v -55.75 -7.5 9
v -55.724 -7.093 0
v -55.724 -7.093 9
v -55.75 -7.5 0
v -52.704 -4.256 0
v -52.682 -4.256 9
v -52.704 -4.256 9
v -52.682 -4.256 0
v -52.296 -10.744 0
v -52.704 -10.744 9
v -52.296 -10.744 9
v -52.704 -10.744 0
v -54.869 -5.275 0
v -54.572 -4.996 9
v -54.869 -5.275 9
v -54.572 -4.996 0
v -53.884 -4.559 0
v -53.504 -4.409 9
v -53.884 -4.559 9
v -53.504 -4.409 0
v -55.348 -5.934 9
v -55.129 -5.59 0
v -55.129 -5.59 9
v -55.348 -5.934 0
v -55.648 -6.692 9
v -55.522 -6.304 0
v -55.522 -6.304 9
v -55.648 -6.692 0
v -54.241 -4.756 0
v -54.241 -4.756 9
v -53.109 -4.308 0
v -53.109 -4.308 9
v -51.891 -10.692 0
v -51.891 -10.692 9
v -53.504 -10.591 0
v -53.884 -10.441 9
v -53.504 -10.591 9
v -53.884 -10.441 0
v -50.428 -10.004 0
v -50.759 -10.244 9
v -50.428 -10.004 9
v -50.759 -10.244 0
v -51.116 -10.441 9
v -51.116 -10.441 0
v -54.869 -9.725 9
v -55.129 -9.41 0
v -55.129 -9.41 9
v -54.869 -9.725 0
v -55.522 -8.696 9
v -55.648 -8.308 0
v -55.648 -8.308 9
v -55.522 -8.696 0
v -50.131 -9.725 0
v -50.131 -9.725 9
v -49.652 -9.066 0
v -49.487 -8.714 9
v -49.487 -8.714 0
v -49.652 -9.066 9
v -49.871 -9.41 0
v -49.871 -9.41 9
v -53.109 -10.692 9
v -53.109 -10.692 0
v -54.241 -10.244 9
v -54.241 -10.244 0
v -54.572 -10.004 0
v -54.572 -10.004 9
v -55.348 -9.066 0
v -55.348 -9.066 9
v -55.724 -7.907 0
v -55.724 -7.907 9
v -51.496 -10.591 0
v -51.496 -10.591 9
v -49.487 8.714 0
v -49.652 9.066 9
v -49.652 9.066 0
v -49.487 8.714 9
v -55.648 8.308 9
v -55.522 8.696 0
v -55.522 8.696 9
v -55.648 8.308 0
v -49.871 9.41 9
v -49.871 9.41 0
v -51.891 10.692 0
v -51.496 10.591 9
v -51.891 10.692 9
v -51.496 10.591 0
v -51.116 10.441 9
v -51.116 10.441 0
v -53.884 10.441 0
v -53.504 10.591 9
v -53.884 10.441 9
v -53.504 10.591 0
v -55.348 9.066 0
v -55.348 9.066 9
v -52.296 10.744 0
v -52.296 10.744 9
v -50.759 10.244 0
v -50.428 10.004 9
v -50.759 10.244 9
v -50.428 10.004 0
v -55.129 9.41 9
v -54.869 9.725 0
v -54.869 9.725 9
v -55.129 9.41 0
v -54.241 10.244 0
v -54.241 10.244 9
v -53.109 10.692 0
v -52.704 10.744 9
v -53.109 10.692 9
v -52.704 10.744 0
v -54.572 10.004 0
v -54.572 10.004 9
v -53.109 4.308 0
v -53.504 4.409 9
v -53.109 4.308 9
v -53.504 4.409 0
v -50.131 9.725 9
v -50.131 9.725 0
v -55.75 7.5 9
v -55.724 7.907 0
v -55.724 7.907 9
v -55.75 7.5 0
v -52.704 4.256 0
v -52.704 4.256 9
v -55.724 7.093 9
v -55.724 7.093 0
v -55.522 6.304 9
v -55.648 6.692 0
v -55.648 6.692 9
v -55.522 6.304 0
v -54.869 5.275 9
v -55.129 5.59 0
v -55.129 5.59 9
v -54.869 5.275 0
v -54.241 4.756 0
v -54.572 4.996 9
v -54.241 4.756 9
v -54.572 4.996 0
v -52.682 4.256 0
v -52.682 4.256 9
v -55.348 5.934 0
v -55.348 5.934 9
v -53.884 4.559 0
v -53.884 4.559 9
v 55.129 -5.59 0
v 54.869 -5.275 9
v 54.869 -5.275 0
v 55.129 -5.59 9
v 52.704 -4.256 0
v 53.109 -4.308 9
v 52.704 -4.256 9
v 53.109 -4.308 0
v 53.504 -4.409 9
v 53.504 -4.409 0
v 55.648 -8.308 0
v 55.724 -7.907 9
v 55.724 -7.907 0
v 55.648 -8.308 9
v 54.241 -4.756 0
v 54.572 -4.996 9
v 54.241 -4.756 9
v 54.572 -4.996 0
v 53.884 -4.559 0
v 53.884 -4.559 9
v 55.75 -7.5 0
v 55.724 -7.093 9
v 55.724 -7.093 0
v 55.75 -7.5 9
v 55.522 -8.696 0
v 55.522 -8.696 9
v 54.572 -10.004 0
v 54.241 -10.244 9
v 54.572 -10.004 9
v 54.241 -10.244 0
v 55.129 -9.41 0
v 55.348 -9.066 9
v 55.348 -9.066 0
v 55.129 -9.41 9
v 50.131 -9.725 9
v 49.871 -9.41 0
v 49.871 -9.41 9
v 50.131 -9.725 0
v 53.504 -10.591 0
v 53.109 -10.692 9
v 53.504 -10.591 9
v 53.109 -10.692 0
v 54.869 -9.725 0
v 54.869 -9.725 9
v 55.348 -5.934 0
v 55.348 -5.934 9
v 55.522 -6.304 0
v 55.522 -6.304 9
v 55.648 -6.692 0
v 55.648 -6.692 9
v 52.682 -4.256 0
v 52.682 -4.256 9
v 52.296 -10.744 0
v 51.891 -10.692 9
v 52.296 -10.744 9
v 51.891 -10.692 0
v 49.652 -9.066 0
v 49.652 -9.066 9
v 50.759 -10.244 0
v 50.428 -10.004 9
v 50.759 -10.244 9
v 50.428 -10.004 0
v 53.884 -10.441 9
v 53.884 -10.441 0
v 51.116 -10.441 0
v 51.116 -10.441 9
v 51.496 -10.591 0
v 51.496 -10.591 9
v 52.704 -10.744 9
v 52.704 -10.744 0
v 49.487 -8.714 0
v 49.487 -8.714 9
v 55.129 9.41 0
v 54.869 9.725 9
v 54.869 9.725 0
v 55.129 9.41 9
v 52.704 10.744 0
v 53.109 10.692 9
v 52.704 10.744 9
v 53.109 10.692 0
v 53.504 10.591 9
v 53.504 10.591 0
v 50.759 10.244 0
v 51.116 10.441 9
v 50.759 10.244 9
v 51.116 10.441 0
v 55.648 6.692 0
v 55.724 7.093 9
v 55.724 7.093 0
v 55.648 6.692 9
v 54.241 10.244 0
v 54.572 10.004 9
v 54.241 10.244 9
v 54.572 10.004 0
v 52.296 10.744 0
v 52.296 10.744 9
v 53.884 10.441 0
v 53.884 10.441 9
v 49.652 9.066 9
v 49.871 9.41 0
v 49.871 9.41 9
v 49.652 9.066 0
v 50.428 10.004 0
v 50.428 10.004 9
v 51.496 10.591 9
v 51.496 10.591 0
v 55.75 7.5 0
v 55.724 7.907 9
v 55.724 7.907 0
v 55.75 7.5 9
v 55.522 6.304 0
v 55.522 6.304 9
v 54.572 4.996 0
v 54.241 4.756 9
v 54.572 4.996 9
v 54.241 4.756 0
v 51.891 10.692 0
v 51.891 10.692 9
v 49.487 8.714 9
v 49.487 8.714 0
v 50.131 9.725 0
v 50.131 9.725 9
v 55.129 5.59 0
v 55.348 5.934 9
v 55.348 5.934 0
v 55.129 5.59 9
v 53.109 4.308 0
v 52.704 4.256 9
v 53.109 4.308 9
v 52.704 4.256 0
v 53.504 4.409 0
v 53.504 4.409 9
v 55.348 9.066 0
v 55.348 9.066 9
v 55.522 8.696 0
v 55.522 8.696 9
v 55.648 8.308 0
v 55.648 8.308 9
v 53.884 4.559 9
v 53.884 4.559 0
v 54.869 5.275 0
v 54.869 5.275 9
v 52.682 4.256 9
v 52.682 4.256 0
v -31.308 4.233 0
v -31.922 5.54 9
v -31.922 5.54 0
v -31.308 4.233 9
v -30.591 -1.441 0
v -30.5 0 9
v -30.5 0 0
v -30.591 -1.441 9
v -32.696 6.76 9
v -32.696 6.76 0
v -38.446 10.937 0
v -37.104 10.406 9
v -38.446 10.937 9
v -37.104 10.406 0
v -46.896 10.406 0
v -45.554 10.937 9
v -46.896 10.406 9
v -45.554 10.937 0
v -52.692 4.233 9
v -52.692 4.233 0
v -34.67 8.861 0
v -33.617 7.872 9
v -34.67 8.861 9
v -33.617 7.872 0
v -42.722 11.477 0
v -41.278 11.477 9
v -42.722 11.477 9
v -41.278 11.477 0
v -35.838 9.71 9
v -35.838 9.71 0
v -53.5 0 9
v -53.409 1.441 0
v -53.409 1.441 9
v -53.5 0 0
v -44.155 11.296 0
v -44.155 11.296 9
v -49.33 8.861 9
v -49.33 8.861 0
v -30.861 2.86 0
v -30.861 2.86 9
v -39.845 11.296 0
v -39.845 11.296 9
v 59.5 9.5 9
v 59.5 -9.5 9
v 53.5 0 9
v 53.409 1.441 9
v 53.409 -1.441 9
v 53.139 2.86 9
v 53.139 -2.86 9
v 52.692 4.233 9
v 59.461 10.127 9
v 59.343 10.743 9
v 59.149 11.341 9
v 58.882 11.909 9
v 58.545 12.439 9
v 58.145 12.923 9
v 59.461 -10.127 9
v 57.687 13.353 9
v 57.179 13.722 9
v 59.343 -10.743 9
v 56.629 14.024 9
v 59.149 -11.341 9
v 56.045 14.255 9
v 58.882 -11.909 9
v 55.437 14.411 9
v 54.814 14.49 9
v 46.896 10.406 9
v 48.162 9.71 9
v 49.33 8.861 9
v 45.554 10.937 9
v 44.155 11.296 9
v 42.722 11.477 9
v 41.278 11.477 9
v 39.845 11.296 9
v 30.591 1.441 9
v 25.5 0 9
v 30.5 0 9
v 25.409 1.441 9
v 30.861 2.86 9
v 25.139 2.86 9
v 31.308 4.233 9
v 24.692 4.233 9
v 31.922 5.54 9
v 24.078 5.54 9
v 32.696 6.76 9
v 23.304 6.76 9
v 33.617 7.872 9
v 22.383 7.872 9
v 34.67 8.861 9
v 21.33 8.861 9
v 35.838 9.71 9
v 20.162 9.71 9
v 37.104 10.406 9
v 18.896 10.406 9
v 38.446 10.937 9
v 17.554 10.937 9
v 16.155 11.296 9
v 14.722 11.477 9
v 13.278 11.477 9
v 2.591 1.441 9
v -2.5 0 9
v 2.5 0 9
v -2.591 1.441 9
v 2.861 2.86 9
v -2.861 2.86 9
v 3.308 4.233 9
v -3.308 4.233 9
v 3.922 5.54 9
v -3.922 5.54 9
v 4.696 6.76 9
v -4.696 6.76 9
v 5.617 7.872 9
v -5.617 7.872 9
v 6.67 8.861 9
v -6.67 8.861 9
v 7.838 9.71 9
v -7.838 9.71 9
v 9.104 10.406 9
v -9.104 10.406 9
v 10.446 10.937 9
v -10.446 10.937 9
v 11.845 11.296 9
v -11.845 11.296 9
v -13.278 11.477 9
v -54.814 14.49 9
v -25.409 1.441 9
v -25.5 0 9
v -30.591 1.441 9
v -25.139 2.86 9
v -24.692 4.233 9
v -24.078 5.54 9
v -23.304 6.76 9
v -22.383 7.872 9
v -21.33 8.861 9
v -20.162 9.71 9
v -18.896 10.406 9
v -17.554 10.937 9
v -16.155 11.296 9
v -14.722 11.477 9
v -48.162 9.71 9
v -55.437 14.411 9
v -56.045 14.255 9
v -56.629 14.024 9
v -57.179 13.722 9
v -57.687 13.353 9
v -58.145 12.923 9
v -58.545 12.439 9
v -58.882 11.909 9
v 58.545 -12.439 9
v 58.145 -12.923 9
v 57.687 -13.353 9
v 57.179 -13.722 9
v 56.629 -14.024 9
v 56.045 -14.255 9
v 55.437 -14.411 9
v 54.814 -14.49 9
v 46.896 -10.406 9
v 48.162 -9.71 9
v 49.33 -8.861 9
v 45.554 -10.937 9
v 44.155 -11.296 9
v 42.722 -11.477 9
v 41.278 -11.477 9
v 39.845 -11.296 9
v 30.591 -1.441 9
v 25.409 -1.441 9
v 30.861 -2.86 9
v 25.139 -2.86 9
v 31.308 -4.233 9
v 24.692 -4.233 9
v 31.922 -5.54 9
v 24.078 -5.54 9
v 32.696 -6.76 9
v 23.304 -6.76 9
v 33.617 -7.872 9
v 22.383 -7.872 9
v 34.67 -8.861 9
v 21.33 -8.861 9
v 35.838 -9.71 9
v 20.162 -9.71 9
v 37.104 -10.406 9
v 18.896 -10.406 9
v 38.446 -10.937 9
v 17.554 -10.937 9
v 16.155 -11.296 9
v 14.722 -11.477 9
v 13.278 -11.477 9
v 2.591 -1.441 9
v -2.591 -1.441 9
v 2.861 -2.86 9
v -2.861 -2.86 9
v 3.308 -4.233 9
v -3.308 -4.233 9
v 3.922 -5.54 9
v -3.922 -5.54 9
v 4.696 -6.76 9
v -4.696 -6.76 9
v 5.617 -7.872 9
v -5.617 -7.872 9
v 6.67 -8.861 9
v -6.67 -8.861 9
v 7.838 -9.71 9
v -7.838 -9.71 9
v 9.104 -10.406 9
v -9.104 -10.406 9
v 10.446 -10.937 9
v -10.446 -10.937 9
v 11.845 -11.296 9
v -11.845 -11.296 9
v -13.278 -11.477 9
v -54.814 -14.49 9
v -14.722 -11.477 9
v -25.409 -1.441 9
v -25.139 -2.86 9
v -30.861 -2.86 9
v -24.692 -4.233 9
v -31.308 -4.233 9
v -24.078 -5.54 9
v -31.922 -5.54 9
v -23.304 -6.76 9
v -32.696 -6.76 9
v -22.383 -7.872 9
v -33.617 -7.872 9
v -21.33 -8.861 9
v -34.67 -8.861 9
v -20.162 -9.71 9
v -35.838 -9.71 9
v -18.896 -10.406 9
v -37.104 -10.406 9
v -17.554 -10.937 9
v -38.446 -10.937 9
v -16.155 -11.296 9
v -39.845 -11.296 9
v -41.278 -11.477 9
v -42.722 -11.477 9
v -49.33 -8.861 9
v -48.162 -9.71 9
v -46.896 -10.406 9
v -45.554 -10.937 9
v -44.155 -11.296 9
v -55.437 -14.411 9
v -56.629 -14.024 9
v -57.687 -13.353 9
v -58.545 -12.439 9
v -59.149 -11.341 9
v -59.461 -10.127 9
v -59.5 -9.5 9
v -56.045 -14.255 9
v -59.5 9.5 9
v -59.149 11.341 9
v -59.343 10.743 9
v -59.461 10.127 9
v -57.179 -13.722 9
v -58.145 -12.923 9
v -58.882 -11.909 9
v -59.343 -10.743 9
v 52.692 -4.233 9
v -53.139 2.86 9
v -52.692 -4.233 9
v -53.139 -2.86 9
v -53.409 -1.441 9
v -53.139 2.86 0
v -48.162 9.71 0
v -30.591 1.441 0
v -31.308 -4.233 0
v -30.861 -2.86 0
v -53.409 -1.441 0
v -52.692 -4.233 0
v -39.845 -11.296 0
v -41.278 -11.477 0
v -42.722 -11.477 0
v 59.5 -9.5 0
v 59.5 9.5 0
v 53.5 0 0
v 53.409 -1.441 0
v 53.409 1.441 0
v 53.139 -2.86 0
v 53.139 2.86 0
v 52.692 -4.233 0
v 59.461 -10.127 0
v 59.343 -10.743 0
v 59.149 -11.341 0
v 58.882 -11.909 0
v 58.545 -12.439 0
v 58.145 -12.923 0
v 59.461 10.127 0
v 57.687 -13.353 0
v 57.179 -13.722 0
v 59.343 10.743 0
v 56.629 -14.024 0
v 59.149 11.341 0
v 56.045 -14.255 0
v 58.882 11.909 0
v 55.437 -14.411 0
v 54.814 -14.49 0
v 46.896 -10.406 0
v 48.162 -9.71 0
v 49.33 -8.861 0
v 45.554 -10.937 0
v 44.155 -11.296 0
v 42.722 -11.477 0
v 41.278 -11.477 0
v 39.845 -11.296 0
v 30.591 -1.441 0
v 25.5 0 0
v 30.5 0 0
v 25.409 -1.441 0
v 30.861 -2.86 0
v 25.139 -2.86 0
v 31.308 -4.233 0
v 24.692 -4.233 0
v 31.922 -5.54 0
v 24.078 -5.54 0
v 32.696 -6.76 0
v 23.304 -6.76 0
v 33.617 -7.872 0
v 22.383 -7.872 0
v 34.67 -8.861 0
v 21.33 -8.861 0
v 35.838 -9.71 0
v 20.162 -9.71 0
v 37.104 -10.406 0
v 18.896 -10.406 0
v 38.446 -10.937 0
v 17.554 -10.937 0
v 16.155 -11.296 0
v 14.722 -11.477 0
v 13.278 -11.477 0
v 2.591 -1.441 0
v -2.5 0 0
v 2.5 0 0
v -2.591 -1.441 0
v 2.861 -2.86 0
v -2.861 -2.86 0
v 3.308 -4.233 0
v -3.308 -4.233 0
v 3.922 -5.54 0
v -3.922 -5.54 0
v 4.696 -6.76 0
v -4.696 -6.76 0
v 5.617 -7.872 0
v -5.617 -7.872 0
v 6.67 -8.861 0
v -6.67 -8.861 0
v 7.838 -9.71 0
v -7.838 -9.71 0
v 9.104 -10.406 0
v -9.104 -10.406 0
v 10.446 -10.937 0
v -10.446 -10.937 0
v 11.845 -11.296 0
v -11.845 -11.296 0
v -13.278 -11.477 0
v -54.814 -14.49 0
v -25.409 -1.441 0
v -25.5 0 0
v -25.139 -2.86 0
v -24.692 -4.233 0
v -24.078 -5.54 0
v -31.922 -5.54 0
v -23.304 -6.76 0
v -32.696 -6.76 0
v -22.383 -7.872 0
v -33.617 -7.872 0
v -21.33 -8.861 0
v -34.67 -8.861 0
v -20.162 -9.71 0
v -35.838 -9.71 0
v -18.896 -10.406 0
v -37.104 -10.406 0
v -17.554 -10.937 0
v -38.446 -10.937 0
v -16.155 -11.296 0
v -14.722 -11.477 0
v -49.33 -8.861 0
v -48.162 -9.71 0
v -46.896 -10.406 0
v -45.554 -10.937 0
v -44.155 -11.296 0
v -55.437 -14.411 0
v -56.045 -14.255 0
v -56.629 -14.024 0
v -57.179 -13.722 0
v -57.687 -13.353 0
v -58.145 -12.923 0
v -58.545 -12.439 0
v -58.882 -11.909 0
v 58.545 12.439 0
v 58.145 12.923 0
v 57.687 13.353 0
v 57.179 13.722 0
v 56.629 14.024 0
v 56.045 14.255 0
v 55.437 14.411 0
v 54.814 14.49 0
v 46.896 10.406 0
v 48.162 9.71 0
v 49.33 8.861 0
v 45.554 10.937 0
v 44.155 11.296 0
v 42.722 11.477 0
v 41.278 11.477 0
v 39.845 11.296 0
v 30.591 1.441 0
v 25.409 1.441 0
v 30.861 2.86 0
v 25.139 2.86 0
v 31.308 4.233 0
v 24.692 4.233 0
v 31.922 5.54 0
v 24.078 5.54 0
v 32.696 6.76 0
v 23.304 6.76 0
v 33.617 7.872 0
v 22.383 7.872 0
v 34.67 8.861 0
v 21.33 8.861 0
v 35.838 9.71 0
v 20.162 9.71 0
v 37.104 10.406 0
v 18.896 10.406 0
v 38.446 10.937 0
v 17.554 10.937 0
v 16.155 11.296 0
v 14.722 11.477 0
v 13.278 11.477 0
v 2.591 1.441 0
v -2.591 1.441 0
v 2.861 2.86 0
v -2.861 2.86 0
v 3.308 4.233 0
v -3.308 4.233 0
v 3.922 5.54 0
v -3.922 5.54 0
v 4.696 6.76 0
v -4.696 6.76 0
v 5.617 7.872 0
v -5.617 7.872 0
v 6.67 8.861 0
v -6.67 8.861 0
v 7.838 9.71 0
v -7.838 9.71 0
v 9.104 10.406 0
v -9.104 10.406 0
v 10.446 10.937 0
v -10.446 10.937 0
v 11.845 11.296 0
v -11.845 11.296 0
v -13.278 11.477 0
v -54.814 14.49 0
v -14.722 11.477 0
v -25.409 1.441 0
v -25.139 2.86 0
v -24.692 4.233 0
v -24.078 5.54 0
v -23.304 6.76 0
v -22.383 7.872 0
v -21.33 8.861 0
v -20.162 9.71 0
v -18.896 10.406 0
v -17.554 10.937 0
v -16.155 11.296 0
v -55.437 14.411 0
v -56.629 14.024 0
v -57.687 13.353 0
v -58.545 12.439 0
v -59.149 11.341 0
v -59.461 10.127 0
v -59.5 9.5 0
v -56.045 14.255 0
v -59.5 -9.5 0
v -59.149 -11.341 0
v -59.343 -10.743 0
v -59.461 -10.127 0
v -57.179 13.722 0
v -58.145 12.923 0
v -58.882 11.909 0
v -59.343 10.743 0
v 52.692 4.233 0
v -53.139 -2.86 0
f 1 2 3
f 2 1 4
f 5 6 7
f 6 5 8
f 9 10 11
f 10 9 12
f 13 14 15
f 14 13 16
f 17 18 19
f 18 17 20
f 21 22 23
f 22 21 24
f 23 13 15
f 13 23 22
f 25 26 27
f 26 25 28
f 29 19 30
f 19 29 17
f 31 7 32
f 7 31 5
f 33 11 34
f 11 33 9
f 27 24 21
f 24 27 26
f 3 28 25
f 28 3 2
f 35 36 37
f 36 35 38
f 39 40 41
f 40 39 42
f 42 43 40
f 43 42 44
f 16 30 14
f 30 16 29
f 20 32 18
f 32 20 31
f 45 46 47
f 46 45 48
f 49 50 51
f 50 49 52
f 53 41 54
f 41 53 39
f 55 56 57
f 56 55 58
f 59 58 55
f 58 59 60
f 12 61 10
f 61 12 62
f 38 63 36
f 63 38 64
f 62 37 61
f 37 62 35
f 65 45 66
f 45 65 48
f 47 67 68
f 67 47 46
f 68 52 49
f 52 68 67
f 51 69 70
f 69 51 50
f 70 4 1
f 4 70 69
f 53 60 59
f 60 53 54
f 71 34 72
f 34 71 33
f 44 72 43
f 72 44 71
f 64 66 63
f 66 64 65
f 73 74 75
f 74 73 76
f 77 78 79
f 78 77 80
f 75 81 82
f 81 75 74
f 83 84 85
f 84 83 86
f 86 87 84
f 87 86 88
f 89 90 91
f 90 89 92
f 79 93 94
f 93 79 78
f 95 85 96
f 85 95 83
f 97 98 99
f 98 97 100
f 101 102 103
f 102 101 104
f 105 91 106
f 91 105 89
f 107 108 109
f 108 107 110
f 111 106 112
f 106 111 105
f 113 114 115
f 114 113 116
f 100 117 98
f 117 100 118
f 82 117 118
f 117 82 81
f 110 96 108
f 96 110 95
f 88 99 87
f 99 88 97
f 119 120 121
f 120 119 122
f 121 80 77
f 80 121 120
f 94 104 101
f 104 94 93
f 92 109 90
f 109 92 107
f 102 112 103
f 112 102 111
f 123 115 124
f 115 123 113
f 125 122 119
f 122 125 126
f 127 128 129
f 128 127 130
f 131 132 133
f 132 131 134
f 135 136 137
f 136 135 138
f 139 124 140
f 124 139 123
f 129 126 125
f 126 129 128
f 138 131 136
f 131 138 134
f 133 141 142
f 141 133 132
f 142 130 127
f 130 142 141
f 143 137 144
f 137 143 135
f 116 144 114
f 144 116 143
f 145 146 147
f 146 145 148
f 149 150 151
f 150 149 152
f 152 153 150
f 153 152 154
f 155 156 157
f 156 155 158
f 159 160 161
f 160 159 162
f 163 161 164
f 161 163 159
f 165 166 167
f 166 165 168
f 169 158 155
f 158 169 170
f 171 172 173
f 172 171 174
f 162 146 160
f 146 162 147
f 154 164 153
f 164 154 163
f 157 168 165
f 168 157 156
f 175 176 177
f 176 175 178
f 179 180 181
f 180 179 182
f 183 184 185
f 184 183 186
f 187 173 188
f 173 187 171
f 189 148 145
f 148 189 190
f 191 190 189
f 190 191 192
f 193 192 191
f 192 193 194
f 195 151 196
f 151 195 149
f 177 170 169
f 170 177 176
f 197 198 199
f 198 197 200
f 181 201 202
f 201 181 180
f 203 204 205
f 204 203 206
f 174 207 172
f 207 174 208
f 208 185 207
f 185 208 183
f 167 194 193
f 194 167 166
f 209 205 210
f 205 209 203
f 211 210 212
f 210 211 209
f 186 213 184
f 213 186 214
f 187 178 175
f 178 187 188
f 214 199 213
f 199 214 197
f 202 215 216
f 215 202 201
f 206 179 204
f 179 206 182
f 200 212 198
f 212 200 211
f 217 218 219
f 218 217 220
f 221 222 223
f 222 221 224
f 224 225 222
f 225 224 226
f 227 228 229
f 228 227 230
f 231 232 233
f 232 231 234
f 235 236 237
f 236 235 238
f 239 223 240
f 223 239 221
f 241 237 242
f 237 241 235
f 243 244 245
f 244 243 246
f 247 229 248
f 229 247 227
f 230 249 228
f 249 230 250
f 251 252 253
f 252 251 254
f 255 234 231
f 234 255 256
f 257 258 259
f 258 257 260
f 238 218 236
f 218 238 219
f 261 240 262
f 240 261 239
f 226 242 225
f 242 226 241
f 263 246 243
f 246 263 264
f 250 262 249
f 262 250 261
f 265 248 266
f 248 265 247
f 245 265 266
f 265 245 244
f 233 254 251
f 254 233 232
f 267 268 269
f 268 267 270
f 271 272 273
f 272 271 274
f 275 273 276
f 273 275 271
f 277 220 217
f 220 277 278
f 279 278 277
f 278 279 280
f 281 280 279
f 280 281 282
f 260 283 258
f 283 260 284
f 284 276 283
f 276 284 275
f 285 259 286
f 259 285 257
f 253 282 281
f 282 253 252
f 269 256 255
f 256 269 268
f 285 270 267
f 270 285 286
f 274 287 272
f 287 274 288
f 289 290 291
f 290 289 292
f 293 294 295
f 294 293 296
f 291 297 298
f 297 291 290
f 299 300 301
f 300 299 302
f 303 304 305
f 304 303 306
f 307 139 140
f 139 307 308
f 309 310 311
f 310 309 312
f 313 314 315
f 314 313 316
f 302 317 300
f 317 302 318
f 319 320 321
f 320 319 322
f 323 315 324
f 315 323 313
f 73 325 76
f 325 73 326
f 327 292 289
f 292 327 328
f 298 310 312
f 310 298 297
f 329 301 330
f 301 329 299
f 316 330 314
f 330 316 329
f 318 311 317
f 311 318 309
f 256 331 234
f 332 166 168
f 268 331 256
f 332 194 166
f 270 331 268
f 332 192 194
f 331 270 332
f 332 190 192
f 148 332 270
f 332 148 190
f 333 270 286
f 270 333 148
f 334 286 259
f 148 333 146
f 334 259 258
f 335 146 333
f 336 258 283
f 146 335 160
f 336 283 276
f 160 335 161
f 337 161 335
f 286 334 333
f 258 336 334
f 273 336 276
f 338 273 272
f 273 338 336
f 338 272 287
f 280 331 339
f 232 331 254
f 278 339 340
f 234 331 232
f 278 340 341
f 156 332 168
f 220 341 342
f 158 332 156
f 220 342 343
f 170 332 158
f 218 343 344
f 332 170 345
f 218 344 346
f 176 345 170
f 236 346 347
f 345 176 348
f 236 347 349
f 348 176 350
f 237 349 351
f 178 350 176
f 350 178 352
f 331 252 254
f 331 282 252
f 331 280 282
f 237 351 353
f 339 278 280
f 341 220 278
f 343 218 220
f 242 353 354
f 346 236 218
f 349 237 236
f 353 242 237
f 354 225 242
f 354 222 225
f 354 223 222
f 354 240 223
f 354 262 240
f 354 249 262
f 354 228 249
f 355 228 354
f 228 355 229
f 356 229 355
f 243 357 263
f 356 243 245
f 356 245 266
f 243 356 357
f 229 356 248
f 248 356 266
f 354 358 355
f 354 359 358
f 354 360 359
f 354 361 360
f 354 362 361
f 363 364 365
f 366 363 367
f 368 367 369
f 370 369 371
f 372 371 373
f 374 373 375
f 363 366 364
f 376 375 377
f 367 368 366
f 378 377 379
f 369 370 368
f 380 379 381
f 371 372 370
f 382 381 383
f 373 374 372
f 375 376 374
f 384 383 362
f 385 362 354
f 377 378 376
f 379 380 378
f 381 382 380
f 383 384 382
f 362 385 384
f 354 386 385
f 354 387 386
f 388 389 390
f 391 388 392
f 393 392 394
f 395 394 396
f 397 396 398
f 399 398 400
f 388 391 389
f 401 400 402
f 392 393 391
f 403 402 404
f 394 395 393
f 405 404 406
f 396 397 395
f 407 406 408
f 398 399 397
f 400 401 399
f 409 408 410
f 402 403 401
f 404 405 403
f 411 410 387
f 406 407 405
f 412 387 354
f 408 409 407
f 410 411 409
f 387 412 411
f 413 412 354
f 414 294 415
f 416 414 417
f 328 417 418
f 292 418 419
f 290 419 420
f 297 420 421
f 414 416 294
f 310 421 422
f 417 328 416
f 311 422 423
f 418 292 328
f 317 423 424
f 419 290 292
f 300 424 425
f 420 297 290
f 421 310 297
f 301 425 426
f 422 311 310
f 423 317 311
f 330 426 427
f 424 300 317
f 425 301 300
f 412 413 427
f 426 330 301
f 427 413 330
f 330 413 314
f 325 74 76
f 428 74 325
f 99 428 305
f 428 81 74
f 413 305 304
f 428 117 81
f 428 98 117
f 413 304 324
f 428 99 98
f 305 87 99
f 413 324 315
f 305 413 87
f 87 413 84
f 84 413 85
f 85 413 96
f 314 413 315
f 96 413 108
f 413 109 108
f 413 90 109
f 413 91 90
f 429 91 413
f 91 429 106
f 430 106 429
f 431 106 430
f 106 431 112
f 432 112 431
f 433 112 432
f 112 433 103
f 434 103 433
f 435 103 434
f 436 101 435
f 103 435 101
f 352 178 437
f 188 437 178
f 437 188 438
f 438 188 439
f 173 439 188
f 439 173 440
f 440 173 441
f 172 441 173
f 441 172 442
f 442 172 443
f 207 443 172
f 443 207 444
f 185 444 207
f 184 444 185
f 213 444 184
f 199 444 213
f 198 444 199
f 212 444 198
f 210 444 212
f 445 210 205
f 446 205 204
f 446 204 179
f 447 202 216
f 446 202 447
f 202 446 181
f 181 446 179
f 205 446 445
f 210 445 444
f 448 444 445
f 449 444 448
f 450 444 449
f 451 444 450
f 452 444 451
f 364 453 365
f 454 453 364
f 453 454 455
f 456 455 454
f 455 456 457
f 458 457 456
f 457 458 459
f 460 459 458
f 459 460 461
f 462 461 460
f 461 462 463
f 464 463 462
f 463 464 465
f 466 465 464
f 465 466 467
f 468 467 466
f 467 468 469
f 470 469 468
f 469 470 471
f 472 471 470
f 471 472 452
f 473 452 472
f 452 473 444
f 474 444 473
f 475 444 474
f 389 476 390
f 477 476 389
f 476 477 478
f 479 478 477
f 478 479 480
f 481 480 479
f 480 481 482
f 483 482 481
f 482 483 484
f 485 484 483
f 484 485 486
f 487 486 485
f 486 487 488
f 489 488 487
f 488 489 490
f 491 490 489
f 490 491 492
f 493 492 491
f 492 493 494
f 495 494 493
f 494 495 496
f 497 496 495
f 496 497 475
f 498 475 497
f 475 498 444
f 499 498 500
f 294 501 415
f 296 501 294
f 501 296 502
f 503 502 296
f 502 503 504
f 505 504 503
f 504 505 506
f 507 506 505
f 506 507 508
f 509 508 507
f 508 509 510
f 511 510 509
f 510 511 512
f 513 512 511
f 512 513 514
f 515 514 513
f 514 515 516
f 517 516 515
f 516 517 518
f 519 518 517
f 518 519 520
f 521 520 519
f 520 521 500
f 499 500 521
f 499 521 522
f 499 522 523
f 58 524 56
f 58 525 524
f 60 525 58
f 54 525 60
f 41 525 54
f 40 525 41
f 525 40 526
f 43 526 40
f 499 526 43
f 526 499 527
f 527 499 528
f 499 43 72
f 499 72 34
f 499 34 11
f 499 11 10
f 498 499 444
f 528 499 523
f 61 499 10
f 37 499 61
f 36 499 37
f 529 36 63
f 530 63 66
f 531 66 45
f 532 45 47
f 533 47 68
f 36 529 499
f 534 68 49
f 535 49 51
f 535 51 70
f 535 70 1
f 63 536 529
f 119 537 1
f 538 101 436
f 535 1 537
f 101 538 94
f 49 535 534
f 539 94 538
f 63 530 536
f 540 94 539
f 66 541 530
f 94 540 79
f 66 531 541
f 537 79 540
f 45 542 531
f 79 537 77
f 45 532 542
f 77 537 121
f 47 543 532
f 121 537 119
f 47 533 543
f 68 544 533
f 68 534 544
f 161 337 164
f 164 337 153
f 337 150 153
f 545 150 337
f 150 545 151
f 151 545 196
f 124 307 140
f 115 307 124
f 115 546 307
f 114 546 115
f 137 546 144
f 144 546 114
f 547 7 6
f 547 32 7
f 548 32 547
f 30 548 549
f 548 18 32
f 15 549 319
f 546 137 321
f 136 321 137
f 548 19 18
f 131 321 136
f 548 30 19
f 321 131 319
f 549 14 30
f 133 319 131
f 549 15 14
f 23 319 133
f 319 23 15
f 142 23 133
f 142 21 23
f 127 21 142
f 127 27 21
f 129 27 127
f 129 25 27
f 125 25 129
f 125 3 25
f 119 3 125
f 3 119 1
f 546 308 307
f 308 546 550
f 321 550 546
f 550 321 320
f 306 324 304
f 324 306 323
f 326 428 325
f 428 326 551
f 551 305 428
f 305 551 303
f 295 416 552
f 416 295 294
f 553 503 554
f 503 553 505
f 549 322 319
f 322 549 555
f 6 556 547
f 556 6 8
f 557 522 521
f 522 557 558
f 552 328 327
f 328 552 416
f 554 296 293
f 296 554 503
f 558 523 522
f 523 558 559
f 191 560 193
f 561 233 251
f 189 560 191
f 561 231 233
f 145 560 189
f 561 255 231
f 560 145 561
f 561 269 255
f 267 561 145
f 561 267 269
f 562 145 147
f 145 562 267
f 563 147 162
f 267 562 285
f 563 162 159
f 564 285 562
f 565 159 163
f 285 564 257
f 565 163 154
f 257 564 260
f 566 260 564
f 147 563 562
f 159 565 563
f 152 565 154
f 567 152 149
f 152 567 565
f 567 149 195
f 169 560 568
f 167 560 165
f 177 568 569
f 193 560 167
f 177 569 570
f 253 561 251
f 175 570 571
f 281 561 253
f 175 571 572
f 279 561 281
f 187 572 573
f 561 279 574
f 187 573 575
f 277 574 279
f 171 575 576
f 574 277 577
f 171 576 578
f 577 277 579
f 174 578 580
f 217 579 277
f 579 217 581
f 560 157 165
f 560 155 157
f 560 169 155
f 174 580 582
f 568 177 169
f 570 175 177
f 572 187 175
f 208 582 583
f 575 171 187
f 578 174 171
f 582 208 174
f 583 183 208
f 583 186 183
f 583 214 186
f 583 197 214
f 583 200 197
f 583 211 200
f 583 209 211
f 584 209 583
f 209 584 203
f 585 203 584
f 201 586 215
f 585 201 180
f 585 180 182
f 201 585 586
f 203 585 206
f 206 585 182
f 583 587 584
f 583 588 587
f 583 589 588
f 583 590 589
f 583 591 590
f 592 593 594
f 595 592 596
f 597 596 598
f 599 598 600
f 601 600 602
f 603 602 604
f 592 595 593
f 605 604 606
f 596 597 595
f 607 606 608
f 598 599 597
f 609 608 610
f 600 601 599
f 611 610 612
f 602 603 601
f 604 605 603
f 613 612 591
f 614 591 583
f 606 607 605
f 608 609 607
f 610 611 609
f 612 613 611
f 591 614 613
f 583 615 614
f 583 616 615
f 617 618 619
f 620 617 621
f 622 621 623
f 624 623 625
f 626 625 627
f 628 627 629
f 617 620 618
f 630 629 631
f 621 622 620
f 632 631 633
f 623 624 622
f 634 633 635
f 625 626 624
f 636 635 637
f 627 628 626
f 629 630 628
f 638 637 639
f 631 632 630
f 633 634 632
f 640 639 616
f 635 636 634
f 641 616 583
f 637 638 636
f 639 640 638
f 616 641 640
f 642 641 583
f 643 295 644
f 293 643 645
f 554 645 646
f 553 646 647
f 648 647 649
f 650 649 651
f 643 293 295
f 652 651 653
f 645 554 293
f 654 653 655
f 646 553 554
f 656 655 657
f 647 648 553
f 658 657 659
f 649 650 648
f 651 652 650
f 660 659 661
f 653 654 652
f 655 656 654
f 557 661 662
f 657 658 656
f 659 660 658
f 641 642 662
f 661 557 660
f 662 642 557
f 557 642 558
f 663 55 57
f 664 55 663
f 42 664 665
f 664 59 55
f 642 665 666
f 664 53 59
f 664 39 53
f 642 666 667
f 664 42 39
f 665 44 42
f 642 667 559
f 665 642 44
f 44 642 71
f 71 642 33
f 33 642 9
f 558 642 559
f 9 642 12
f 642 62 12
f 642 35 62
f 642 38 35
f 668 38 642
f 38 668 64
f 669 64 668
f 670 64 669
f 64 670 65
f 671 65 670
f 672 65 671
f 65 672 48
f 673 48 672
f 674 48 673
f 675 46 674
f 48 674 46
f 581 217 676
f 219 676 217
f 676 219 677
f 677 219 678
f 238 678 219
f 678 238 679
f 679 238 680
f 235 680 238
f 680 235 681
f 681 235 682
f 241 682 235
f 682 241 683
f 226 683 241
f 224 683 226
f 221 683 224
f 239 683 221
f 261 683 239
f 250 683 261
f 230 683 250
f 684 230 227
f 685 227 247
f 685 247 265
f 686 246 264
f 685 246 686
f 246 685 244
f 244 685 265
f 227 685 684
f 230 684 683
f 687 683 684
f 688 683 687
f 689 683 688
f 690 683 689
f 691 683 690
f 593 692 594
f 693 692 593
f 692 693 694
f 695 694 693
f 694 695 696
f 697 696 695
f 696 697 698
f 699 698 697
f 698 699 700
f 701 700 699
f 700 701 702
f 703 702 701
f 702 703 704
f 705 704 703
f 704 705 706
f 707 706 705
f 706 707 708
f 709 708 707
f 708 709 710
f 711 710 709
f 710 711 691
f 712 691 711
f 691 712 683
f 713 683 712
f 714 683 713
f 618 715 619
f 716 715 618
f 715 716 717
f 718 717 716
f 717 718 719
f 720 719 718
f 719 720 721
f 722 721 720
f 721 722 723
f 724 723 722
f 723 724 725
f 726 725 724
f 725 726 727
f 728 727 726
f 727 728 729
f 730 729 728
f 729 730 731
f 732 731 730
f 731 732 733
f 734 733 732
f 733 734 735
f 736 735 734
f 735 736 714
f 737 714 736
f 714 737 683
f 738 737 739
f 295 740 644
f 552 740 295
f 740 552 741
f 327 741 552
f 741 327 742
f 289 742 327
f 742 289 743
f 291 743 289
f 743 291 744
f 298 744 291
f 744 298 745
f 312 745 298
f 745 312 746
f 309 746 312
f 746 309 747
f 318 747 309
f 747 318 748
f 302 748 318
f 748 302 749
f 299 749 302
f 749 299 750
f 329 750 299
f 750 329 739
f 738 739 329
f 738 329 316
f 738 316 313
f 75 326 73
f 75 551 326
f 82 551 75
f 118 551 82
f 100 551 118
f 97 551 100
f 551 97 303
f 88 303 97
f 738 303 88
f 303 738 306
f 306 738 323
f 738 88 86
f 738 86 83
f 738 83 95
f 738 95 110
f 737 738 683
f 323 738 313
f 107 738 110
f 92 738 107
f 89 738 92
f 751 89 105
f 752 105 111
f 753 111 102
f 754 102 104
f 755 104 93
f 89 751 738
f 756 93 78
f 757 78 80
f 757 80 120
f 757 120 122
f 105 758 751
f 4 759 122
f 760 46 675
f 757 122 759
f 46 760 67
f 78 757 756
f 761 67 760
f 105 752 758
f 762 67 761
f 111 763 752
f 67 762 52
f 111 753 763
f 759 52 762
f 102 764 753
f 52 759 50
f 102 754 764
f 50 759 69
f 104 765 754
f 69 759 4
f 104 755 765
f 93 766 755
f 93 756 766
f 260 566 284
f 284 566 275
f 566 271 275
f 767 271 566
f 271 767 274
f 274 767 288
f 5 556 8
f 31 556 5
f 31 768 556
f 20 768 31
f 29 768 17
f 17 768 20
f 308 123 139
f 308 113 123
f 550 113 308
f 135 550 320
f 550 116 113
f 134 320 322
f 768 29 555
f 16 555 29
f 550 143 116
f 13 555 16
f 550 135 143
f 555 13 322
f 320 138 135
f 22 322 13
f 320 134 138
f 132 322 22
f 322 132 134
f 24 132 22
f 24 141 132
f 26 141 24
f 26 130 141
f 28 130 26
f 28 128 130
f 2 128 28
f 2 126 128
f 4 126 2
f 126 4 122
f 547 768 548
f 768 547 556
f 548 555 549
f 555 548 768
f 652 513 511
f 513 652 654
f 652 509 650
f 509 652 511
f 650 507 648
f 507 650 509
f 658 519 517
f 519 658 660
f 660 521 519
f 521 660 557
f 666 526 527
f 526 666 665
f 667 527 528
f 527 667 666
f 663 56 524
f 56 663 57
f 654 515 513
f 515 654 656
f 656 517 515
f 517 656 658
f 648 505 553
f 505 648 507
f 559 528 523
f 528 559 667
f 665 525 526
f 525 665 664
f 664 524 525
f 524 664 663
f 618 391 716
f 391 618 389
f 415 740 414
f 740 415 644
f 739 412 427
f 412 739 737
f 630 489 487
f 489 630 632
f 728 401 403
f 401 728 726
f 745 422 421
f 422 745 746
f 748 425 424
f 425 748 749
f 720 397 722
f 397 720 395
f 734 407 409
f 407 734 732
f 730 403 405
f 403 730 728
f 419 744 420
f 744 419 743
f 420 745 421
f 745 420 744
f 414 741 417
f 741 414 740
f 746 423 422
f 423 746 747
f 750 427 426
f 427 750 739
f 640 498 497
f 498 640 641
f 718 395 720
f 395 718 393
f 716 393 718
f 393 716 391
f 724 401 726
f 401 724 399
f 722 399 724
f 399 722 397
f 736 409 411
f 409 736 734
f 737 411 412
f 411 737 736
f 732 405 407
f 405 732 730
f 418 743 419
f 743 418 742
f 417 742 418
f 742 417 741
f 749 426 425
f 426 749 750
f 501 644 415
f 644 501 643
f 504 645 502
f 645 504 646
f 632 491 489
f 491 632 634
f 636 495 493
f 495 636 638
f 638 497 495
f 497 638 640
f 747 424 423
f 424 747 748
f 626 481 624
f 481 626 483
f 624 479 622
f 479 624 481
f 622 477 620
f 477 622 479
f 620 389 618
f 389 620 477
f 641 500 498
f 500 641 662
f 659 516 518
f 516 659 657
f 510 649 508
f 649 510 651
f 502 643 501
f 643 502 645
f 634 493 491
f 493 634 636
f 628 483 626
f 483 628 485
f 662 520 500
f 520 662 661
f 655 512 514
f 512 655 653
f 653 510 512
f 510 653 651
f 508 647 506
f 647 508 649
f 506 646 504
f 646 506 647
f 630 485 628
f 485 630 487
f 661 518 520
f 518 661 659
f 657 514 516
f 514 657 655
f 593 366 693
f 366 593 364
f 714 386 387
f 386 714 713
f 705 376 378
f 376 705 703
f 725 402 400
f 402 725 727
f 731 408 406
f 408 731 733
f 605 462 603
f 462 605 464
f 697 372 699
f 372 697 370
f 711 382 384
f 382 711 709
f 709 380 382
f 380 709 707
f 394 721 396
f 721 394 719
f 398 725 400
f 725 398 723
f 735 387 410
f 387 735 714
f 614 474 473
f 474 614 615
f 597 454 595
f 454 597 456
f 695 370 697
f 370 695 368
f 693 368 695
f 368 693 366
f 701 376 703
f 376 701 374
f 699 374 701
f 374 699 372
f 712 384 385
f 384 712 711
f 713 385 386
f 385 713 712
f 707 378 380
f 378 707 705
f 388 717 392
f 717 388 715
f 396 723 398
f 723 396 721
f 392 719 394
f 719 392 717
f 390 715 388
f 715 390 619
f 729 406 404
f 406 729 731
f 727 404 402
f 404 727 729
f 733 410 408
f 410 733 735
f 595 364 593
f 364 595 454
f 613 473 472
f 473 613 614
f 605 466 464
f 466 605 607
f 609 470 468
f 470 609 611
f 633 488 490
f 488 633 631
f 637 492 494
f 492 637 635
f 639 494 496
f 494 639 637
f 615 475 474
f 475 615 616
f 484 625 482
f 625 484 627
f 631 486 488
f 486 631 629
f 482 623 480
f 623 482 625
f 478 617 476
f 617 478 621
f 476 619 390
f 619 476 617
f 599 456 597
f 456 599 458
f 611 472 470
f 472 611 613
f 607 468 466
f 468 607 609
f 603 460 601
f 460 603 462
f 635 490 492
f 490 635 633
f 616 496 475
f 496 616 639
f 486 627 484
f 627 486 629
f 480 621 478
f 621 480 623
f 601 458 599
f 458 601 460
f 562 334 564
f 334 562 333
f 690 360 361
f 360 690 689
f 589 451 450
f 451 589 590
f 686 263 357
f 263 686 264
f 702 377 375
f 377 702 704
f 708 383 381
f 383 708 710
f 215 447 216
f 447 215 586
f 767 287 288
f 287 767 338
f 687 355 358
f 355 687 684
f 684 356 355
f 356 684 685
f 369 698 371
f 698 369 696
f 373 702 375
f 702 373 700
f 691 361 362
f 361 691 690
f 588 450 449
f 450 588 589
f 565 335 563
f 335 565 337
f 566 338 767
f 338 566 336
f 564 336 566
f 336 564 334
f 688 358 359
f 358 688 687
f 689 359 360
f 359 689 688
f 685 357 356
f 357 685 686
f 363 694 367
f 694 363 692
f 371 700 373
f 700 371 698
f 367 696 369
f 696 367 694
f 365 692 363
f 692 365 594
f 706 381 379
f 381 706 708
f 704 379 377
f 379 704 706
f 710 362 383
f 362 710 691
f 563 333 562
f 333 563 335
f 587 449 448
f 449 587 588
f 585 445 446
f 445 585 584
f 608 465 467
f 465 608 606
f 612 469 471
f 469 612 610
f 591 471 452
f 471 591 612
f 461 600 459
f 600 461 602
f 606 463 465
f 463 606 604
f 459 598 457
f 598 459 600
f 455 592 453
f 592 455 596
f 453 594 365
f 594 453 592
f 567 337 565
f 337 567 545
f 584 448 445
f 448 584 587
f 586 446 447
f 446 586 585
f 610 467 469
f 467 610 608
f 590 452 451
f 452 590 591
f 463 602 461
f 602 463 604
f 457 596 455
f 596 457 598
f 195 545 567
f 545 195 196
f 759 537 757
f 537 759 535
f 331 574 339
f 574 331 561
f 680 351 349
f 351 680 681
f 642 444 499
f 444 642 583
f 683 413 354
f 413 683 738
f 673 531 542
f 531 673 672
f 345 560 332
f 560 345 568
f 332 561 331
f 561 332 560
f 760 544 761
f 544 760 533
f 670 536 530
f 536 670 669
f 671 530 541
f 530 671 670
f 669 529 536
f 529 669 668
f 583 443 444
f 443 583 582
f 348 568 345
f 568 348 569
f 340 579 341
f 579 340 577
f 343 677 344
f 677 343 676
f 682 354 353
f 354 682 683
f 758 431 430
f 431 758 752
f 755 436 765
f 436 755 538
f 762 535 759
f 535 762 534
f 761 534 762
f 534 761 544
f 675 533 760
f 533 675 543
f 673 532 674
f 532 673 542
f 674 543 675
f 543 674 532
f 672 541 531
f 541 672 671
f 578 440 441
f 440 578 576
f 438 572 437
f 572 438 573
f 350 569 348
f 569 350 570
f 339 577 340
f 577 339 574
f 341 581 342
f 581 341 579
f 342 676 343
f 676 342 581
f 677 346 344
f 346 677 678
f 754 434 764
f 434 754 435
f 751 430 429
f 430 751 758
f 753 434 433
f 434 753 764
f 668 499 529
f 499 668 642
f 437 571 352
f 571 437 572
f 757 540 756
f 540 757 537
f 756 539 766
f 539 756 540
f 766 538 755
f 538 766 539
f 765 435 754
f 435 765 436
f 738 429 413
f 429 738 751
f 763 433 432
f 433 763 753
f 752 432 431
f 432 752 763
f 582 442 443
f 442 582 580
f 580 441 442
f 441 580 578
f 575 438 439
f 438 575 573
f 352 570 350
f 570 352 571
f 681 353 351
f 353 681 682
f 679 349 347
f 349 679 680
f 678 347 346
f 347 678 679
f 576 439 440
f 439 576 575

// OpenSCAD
$fn = 50;


difference() {
	union() {
		hull() {
			translate(v = [-54.5000000000, 9.5000000000, 0]) {
				cylinder(h = 9, r = 5);
			}
			translate(v = [54.5000000000, 9.5000000000, 0]) {
				cylinder(h = 9, r = 5);
			}
			translate(v = [-54.5000000000, -9.5000000000, 0]) {
				cylinder(h = 9, r = 5);
			}
			translate(v = [54.5000000000, -9.5000000000, 0]) {
				cylinder(h = 9, r = 5);
			}
		}
	}
	union() {
		#translate(v = [-52.5000000000, -7.5000000000, -100.0000000000]) {
			cylinder(h = 200, r = 3.2500000000);
		}
		#translate(v = [-52.5000000000, 7.5000000000, -100.0000000000]) {
			cylinder(h = 200, r = 3.2500000000);
		}
		#translate(v = [52.5000000000, -7.5000000000, -100.0000000000]) {
			cylinder(h = 200, r = 3.2500000000);
		}
		#translate(v = [52.5000000000, 7.5000000000, -100.0000000000]) {
			cylinder(h = 200, r = 3.2500000000);
		}
		#translate(v = [-42.0000000000, 0, 0]) {
			cylinder(h = 9, r = 11.5000000000);
		}
		#translate(v = [-14.0000000000, 0, 0]) {
			cylinder(h = 9, r = 11.5000000000);
		}
		#translate(v = [14.0000000000, 0, 0]) {
			cylinder(h = 9, r = 11.5000000000);
		}
		#translate(v = [42.0000000000, 0, 0]) {
			cylinder(h = 9, r = 11.5000000000);
		}
	}
}
